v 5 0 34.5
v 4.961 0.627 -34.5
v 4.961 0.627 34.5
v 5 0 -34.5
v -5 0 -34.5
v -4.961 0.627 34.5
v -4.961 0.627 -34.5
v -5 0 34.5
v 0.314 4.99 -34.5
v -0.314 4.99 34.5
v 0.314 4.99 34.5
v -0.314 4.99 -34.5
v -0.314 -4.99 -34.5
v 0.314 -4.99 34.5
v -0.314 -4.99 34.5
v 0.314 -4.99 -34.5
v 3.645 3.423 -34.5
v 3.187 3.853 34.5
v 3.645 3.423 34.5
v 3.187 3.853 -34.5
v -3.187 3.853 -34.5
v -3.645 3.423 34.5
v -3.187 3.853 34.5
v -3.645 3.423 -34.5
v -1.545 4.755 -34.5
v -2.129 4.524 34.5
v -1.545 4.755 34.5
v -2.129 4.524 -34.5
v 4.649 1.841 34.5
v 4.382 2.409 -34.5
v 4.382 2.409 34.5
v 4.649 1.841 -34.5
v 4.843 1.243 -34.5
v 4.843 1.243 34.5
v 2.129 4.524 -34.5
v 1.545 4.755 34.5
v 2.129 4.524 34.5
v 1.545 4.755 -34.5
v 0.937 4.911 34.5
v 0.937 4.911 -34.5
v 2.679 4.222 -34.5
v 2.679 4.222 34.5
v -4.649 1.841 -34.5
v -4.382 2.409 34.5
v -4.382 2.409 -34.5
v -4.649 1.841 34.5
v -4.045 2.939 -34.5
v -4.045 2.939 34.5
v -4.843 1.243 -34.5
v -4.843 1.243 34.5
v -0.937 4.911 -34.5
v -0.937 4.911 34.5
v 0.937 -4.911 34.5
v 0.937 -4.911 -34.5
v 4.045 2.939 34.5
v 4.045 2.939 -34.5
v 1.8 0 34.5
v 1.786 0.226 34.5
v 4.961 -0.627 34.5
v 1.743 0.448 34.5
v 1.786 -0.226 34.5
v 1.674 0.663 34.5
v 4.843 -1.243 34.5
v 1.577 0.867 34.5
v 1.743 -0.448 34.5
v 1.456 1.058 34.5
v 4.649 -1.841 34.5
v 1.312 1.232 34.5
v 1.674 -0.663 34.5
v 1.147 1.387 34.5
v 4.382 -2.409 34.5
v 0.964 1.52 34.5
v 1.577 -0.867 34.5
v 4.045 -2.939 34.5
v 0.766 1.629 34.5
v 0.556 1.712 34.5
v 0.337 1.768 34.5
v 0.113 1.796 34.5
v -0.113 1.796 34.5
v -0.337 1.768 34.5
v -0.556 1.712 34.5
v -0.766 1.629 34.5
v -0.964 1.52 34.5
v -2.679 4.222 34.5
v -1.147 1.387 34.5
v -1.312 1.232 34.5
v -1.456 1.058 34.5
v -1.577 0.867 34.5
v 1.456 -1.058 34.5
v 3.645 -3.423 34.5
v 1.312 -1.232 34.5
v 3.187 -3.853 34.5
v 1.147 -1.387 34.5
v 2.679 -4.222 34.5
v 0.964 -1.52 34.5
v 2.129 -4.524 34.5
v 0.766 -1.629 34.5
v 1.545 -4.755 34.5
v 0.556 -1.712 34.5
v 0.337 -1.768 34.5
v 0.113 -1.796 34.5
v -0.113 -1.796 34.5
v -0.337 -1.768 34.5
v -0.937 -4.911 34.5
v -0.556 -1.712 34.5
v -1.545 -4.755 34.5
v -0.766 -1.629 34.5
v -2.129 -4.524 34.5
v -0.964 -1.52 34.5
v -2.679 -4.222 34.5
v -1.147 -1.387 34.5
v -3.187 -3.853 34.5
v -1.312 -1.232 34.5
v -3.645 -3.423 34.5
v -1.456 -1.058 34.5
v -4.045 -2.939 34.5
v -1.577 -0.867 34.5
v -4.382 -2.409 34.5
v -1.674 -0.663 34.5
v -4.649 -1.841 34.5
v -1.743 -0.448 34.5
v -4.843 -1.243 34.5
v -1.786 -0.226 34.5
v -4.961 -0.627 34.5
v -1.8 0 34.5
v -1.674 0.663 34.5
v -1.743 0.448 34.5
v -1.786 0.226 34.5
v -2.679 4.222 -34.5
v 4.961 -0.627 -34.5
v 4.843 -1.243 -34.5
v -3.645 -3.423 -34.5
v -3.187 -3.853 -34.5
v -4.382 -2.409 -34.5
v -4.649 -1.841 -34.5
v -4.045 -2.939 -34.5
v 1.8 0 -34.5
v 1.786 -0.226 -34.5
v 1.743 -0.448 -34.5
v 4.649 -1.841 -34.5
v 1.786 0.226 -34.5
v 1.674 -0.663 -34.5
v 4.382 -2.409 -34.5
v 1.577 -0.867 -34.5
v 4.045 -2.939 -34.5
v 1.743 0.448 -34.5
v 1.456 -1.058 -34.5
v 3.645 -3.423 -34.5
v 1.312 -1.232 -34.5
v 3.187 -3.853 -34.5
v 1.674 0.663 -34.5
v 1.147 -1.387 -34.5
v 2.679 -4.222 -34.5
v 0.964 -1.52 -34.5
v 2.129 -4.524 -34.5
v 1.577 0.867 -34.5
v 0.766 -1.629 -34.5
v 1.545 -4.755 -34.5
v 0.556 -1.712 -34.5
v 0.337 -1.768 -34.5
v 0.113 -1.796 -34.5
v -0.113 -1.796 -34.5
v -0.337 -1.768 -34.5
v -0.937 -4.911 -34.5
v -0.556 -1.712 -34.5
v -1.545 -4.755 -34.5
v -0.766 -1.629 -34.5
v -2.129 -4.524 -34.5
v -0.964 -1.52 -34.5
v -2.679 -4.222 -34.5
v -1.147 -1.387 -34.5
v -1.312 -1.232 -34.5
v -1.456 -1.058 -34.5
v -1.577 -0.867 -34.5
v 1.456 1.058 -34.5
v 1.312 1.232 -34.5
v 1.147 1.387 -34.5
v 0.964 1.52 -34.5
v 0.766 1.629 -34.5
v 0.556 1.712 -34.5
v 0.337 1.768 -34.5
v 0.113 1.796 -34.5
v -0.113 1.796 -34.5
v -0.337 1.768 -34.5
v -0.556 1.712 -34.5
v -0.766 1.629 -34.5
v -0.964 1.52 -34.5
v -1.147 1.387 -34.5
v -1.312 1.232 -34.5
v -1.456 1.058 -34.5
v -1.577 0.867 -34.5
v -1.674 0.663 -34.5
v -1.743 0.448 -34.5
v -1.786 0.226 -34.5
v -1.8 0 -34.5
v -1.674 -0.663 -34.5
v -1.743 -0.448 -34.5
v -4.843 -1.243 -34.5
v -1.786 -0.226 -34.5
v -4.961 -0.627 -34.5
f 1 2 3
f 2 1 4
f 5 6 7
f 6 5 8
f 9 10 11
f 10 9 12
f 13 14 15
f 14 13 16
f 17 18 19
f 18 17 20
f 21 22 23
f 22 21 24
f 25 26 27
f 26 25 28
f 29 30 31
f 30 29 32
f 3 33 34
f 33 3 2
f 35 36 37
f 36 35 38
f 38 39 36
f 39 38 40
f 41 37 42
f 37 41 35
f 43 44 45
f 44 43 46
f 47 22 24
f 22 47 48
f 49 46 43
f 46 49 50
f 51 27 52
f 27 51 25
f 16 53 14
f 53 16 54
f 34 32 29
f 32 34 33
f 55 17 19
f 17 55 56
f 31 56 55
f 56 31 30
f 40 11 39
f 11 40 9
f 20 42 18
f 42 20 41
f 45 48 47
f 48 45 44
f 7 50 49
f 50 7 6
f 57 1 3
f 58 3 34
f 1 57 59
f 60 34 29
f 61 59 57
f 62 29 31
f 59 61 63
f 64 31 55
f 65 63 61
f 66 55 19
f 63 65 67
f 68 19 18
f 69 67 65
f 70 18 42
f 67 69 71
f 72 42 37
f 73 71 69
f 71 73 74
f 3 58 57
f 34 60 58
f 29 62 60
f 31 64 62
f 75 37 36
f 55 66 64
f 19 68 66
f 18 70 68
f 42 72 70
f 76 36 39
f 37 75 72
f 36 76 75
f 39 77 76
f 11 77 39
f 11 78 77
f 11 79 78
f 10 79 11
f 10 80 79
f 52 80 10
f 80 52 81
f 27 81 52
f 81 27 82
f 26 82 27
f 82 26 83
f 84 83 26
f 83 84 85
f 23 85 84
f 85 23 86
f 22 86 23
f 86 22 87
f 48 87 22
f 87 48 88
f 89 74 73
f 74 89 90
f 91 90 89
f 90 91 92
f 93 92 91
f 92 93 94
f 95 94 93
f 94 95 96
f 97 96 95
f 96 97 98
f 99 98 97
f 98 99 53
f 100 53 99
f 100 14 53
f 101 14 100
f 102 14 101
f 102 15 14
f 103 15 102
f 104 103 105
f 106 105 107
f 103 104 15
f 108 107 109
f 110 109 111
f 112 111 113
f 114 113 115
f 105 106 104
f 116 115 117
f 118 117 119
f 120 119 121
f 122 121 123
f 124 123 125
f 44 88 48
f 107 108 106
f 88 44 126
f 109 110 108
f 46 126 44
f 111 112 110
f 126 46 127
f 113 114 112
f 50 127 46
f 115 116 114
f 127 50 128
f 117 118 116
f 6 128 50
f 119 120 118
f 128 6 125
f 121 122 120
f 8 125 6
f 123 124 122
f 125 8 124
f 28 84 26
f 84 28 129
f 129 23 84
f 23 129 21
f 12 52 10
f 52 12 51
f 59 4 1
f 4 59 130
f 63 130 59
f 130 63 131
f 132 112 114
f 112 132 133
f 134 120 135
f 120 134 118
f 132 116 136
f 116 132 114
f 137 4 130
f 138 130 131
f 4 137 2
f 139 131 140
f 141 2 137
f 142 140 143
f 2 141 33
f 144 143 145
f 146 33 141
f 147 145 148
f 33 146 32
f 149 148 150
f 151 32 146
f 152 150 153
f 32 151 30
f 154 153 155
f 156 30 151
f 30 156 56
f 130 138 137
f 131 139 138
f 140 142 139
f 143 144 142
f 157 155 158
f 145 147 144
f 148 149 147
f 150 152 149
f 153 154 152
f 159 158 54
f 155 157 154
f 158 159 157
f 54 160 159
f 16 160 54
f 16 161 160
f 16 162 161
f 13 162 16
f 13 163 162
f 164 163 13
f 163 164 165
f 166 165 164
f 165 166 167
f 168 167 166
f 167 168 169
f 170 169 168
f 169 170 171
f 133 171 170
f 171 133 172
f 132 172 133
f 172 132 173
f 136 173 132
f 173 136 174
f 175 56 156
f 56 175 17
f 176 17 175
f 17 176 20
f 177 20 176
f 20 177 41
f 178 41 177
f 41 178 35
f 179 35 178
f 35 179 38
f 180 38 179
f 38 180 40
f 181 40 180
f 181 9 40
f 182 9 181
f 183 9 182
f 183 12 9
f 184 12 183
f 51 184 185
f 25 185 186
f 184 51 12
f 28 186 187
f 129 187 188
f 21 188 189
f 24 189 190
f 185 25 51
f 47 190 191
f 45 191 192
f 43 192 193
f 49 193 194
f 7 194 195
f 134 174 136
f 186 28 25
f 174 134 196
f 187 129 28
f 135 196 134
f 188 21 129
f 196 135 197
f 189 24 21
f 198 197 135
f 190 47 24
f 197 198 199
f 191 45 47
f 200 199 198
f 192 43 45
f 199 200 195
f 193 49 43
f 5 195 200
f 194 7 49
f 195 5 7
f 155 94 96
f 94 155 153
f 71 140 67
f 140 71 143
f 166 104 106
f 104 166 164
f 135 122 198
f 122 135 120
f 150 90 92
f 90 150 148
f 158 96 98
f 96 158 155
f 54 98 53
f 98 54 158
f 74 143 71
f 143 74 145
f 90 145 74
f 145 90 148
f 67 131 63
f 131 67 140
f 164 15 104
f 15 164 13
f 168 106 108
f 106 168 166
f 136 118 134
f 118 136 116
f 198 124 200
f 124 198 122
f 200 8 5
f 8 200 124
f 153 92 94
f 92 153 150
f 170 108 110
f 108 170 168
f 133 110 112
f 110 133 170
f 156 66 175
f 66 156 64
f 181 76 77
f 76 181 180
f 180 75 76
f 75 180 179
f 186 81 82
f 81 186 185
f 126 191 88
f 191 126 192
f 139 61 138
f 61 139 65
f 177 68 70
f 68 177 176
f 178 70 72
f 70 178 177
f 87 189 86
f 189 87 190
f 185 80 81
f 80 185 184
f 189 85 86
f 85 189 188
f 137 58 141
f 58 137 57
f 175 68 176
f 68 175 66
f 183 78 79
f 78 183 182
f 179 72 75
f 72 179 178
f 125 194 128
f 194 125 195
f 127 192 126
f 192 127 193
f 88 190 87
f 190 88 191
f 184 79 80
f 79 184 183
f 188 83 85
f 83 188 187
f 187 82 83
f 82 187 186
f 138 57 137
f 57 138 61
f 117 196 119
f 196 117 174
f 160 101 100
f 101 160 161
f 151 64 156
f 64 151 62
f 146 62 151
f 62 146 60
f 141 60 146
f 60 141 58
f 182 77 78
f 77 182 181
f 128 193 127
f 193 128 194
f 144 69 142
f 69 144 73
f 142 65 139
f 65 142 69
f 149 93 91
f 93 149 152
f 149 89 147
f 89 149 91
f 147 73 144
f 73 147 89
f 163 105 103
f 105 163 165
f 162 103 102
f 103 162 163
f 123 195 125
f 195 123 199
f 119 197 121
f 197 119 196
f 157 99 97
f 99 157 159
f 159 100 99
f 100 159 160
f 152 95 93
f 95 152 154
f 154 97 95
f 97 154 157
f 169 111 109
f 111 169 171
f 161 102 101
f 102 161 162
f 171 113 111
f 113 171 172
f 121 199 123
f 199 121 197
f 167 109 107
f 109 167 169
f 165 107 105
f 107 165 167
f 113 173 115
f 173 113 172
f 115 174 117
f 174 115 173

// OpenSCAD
$fn = 50;


difference() {
	union() {
		translate(v = [0, 0, -34.5000000000]) {
			cylinder(h = 69, r = 5.0000000000);
		}
	}
	union() {
		translate(v = [0, 0, -100.0000000000]) {
			cylinder(h = 200, r = 1.8000000000);
		}
	}
}
